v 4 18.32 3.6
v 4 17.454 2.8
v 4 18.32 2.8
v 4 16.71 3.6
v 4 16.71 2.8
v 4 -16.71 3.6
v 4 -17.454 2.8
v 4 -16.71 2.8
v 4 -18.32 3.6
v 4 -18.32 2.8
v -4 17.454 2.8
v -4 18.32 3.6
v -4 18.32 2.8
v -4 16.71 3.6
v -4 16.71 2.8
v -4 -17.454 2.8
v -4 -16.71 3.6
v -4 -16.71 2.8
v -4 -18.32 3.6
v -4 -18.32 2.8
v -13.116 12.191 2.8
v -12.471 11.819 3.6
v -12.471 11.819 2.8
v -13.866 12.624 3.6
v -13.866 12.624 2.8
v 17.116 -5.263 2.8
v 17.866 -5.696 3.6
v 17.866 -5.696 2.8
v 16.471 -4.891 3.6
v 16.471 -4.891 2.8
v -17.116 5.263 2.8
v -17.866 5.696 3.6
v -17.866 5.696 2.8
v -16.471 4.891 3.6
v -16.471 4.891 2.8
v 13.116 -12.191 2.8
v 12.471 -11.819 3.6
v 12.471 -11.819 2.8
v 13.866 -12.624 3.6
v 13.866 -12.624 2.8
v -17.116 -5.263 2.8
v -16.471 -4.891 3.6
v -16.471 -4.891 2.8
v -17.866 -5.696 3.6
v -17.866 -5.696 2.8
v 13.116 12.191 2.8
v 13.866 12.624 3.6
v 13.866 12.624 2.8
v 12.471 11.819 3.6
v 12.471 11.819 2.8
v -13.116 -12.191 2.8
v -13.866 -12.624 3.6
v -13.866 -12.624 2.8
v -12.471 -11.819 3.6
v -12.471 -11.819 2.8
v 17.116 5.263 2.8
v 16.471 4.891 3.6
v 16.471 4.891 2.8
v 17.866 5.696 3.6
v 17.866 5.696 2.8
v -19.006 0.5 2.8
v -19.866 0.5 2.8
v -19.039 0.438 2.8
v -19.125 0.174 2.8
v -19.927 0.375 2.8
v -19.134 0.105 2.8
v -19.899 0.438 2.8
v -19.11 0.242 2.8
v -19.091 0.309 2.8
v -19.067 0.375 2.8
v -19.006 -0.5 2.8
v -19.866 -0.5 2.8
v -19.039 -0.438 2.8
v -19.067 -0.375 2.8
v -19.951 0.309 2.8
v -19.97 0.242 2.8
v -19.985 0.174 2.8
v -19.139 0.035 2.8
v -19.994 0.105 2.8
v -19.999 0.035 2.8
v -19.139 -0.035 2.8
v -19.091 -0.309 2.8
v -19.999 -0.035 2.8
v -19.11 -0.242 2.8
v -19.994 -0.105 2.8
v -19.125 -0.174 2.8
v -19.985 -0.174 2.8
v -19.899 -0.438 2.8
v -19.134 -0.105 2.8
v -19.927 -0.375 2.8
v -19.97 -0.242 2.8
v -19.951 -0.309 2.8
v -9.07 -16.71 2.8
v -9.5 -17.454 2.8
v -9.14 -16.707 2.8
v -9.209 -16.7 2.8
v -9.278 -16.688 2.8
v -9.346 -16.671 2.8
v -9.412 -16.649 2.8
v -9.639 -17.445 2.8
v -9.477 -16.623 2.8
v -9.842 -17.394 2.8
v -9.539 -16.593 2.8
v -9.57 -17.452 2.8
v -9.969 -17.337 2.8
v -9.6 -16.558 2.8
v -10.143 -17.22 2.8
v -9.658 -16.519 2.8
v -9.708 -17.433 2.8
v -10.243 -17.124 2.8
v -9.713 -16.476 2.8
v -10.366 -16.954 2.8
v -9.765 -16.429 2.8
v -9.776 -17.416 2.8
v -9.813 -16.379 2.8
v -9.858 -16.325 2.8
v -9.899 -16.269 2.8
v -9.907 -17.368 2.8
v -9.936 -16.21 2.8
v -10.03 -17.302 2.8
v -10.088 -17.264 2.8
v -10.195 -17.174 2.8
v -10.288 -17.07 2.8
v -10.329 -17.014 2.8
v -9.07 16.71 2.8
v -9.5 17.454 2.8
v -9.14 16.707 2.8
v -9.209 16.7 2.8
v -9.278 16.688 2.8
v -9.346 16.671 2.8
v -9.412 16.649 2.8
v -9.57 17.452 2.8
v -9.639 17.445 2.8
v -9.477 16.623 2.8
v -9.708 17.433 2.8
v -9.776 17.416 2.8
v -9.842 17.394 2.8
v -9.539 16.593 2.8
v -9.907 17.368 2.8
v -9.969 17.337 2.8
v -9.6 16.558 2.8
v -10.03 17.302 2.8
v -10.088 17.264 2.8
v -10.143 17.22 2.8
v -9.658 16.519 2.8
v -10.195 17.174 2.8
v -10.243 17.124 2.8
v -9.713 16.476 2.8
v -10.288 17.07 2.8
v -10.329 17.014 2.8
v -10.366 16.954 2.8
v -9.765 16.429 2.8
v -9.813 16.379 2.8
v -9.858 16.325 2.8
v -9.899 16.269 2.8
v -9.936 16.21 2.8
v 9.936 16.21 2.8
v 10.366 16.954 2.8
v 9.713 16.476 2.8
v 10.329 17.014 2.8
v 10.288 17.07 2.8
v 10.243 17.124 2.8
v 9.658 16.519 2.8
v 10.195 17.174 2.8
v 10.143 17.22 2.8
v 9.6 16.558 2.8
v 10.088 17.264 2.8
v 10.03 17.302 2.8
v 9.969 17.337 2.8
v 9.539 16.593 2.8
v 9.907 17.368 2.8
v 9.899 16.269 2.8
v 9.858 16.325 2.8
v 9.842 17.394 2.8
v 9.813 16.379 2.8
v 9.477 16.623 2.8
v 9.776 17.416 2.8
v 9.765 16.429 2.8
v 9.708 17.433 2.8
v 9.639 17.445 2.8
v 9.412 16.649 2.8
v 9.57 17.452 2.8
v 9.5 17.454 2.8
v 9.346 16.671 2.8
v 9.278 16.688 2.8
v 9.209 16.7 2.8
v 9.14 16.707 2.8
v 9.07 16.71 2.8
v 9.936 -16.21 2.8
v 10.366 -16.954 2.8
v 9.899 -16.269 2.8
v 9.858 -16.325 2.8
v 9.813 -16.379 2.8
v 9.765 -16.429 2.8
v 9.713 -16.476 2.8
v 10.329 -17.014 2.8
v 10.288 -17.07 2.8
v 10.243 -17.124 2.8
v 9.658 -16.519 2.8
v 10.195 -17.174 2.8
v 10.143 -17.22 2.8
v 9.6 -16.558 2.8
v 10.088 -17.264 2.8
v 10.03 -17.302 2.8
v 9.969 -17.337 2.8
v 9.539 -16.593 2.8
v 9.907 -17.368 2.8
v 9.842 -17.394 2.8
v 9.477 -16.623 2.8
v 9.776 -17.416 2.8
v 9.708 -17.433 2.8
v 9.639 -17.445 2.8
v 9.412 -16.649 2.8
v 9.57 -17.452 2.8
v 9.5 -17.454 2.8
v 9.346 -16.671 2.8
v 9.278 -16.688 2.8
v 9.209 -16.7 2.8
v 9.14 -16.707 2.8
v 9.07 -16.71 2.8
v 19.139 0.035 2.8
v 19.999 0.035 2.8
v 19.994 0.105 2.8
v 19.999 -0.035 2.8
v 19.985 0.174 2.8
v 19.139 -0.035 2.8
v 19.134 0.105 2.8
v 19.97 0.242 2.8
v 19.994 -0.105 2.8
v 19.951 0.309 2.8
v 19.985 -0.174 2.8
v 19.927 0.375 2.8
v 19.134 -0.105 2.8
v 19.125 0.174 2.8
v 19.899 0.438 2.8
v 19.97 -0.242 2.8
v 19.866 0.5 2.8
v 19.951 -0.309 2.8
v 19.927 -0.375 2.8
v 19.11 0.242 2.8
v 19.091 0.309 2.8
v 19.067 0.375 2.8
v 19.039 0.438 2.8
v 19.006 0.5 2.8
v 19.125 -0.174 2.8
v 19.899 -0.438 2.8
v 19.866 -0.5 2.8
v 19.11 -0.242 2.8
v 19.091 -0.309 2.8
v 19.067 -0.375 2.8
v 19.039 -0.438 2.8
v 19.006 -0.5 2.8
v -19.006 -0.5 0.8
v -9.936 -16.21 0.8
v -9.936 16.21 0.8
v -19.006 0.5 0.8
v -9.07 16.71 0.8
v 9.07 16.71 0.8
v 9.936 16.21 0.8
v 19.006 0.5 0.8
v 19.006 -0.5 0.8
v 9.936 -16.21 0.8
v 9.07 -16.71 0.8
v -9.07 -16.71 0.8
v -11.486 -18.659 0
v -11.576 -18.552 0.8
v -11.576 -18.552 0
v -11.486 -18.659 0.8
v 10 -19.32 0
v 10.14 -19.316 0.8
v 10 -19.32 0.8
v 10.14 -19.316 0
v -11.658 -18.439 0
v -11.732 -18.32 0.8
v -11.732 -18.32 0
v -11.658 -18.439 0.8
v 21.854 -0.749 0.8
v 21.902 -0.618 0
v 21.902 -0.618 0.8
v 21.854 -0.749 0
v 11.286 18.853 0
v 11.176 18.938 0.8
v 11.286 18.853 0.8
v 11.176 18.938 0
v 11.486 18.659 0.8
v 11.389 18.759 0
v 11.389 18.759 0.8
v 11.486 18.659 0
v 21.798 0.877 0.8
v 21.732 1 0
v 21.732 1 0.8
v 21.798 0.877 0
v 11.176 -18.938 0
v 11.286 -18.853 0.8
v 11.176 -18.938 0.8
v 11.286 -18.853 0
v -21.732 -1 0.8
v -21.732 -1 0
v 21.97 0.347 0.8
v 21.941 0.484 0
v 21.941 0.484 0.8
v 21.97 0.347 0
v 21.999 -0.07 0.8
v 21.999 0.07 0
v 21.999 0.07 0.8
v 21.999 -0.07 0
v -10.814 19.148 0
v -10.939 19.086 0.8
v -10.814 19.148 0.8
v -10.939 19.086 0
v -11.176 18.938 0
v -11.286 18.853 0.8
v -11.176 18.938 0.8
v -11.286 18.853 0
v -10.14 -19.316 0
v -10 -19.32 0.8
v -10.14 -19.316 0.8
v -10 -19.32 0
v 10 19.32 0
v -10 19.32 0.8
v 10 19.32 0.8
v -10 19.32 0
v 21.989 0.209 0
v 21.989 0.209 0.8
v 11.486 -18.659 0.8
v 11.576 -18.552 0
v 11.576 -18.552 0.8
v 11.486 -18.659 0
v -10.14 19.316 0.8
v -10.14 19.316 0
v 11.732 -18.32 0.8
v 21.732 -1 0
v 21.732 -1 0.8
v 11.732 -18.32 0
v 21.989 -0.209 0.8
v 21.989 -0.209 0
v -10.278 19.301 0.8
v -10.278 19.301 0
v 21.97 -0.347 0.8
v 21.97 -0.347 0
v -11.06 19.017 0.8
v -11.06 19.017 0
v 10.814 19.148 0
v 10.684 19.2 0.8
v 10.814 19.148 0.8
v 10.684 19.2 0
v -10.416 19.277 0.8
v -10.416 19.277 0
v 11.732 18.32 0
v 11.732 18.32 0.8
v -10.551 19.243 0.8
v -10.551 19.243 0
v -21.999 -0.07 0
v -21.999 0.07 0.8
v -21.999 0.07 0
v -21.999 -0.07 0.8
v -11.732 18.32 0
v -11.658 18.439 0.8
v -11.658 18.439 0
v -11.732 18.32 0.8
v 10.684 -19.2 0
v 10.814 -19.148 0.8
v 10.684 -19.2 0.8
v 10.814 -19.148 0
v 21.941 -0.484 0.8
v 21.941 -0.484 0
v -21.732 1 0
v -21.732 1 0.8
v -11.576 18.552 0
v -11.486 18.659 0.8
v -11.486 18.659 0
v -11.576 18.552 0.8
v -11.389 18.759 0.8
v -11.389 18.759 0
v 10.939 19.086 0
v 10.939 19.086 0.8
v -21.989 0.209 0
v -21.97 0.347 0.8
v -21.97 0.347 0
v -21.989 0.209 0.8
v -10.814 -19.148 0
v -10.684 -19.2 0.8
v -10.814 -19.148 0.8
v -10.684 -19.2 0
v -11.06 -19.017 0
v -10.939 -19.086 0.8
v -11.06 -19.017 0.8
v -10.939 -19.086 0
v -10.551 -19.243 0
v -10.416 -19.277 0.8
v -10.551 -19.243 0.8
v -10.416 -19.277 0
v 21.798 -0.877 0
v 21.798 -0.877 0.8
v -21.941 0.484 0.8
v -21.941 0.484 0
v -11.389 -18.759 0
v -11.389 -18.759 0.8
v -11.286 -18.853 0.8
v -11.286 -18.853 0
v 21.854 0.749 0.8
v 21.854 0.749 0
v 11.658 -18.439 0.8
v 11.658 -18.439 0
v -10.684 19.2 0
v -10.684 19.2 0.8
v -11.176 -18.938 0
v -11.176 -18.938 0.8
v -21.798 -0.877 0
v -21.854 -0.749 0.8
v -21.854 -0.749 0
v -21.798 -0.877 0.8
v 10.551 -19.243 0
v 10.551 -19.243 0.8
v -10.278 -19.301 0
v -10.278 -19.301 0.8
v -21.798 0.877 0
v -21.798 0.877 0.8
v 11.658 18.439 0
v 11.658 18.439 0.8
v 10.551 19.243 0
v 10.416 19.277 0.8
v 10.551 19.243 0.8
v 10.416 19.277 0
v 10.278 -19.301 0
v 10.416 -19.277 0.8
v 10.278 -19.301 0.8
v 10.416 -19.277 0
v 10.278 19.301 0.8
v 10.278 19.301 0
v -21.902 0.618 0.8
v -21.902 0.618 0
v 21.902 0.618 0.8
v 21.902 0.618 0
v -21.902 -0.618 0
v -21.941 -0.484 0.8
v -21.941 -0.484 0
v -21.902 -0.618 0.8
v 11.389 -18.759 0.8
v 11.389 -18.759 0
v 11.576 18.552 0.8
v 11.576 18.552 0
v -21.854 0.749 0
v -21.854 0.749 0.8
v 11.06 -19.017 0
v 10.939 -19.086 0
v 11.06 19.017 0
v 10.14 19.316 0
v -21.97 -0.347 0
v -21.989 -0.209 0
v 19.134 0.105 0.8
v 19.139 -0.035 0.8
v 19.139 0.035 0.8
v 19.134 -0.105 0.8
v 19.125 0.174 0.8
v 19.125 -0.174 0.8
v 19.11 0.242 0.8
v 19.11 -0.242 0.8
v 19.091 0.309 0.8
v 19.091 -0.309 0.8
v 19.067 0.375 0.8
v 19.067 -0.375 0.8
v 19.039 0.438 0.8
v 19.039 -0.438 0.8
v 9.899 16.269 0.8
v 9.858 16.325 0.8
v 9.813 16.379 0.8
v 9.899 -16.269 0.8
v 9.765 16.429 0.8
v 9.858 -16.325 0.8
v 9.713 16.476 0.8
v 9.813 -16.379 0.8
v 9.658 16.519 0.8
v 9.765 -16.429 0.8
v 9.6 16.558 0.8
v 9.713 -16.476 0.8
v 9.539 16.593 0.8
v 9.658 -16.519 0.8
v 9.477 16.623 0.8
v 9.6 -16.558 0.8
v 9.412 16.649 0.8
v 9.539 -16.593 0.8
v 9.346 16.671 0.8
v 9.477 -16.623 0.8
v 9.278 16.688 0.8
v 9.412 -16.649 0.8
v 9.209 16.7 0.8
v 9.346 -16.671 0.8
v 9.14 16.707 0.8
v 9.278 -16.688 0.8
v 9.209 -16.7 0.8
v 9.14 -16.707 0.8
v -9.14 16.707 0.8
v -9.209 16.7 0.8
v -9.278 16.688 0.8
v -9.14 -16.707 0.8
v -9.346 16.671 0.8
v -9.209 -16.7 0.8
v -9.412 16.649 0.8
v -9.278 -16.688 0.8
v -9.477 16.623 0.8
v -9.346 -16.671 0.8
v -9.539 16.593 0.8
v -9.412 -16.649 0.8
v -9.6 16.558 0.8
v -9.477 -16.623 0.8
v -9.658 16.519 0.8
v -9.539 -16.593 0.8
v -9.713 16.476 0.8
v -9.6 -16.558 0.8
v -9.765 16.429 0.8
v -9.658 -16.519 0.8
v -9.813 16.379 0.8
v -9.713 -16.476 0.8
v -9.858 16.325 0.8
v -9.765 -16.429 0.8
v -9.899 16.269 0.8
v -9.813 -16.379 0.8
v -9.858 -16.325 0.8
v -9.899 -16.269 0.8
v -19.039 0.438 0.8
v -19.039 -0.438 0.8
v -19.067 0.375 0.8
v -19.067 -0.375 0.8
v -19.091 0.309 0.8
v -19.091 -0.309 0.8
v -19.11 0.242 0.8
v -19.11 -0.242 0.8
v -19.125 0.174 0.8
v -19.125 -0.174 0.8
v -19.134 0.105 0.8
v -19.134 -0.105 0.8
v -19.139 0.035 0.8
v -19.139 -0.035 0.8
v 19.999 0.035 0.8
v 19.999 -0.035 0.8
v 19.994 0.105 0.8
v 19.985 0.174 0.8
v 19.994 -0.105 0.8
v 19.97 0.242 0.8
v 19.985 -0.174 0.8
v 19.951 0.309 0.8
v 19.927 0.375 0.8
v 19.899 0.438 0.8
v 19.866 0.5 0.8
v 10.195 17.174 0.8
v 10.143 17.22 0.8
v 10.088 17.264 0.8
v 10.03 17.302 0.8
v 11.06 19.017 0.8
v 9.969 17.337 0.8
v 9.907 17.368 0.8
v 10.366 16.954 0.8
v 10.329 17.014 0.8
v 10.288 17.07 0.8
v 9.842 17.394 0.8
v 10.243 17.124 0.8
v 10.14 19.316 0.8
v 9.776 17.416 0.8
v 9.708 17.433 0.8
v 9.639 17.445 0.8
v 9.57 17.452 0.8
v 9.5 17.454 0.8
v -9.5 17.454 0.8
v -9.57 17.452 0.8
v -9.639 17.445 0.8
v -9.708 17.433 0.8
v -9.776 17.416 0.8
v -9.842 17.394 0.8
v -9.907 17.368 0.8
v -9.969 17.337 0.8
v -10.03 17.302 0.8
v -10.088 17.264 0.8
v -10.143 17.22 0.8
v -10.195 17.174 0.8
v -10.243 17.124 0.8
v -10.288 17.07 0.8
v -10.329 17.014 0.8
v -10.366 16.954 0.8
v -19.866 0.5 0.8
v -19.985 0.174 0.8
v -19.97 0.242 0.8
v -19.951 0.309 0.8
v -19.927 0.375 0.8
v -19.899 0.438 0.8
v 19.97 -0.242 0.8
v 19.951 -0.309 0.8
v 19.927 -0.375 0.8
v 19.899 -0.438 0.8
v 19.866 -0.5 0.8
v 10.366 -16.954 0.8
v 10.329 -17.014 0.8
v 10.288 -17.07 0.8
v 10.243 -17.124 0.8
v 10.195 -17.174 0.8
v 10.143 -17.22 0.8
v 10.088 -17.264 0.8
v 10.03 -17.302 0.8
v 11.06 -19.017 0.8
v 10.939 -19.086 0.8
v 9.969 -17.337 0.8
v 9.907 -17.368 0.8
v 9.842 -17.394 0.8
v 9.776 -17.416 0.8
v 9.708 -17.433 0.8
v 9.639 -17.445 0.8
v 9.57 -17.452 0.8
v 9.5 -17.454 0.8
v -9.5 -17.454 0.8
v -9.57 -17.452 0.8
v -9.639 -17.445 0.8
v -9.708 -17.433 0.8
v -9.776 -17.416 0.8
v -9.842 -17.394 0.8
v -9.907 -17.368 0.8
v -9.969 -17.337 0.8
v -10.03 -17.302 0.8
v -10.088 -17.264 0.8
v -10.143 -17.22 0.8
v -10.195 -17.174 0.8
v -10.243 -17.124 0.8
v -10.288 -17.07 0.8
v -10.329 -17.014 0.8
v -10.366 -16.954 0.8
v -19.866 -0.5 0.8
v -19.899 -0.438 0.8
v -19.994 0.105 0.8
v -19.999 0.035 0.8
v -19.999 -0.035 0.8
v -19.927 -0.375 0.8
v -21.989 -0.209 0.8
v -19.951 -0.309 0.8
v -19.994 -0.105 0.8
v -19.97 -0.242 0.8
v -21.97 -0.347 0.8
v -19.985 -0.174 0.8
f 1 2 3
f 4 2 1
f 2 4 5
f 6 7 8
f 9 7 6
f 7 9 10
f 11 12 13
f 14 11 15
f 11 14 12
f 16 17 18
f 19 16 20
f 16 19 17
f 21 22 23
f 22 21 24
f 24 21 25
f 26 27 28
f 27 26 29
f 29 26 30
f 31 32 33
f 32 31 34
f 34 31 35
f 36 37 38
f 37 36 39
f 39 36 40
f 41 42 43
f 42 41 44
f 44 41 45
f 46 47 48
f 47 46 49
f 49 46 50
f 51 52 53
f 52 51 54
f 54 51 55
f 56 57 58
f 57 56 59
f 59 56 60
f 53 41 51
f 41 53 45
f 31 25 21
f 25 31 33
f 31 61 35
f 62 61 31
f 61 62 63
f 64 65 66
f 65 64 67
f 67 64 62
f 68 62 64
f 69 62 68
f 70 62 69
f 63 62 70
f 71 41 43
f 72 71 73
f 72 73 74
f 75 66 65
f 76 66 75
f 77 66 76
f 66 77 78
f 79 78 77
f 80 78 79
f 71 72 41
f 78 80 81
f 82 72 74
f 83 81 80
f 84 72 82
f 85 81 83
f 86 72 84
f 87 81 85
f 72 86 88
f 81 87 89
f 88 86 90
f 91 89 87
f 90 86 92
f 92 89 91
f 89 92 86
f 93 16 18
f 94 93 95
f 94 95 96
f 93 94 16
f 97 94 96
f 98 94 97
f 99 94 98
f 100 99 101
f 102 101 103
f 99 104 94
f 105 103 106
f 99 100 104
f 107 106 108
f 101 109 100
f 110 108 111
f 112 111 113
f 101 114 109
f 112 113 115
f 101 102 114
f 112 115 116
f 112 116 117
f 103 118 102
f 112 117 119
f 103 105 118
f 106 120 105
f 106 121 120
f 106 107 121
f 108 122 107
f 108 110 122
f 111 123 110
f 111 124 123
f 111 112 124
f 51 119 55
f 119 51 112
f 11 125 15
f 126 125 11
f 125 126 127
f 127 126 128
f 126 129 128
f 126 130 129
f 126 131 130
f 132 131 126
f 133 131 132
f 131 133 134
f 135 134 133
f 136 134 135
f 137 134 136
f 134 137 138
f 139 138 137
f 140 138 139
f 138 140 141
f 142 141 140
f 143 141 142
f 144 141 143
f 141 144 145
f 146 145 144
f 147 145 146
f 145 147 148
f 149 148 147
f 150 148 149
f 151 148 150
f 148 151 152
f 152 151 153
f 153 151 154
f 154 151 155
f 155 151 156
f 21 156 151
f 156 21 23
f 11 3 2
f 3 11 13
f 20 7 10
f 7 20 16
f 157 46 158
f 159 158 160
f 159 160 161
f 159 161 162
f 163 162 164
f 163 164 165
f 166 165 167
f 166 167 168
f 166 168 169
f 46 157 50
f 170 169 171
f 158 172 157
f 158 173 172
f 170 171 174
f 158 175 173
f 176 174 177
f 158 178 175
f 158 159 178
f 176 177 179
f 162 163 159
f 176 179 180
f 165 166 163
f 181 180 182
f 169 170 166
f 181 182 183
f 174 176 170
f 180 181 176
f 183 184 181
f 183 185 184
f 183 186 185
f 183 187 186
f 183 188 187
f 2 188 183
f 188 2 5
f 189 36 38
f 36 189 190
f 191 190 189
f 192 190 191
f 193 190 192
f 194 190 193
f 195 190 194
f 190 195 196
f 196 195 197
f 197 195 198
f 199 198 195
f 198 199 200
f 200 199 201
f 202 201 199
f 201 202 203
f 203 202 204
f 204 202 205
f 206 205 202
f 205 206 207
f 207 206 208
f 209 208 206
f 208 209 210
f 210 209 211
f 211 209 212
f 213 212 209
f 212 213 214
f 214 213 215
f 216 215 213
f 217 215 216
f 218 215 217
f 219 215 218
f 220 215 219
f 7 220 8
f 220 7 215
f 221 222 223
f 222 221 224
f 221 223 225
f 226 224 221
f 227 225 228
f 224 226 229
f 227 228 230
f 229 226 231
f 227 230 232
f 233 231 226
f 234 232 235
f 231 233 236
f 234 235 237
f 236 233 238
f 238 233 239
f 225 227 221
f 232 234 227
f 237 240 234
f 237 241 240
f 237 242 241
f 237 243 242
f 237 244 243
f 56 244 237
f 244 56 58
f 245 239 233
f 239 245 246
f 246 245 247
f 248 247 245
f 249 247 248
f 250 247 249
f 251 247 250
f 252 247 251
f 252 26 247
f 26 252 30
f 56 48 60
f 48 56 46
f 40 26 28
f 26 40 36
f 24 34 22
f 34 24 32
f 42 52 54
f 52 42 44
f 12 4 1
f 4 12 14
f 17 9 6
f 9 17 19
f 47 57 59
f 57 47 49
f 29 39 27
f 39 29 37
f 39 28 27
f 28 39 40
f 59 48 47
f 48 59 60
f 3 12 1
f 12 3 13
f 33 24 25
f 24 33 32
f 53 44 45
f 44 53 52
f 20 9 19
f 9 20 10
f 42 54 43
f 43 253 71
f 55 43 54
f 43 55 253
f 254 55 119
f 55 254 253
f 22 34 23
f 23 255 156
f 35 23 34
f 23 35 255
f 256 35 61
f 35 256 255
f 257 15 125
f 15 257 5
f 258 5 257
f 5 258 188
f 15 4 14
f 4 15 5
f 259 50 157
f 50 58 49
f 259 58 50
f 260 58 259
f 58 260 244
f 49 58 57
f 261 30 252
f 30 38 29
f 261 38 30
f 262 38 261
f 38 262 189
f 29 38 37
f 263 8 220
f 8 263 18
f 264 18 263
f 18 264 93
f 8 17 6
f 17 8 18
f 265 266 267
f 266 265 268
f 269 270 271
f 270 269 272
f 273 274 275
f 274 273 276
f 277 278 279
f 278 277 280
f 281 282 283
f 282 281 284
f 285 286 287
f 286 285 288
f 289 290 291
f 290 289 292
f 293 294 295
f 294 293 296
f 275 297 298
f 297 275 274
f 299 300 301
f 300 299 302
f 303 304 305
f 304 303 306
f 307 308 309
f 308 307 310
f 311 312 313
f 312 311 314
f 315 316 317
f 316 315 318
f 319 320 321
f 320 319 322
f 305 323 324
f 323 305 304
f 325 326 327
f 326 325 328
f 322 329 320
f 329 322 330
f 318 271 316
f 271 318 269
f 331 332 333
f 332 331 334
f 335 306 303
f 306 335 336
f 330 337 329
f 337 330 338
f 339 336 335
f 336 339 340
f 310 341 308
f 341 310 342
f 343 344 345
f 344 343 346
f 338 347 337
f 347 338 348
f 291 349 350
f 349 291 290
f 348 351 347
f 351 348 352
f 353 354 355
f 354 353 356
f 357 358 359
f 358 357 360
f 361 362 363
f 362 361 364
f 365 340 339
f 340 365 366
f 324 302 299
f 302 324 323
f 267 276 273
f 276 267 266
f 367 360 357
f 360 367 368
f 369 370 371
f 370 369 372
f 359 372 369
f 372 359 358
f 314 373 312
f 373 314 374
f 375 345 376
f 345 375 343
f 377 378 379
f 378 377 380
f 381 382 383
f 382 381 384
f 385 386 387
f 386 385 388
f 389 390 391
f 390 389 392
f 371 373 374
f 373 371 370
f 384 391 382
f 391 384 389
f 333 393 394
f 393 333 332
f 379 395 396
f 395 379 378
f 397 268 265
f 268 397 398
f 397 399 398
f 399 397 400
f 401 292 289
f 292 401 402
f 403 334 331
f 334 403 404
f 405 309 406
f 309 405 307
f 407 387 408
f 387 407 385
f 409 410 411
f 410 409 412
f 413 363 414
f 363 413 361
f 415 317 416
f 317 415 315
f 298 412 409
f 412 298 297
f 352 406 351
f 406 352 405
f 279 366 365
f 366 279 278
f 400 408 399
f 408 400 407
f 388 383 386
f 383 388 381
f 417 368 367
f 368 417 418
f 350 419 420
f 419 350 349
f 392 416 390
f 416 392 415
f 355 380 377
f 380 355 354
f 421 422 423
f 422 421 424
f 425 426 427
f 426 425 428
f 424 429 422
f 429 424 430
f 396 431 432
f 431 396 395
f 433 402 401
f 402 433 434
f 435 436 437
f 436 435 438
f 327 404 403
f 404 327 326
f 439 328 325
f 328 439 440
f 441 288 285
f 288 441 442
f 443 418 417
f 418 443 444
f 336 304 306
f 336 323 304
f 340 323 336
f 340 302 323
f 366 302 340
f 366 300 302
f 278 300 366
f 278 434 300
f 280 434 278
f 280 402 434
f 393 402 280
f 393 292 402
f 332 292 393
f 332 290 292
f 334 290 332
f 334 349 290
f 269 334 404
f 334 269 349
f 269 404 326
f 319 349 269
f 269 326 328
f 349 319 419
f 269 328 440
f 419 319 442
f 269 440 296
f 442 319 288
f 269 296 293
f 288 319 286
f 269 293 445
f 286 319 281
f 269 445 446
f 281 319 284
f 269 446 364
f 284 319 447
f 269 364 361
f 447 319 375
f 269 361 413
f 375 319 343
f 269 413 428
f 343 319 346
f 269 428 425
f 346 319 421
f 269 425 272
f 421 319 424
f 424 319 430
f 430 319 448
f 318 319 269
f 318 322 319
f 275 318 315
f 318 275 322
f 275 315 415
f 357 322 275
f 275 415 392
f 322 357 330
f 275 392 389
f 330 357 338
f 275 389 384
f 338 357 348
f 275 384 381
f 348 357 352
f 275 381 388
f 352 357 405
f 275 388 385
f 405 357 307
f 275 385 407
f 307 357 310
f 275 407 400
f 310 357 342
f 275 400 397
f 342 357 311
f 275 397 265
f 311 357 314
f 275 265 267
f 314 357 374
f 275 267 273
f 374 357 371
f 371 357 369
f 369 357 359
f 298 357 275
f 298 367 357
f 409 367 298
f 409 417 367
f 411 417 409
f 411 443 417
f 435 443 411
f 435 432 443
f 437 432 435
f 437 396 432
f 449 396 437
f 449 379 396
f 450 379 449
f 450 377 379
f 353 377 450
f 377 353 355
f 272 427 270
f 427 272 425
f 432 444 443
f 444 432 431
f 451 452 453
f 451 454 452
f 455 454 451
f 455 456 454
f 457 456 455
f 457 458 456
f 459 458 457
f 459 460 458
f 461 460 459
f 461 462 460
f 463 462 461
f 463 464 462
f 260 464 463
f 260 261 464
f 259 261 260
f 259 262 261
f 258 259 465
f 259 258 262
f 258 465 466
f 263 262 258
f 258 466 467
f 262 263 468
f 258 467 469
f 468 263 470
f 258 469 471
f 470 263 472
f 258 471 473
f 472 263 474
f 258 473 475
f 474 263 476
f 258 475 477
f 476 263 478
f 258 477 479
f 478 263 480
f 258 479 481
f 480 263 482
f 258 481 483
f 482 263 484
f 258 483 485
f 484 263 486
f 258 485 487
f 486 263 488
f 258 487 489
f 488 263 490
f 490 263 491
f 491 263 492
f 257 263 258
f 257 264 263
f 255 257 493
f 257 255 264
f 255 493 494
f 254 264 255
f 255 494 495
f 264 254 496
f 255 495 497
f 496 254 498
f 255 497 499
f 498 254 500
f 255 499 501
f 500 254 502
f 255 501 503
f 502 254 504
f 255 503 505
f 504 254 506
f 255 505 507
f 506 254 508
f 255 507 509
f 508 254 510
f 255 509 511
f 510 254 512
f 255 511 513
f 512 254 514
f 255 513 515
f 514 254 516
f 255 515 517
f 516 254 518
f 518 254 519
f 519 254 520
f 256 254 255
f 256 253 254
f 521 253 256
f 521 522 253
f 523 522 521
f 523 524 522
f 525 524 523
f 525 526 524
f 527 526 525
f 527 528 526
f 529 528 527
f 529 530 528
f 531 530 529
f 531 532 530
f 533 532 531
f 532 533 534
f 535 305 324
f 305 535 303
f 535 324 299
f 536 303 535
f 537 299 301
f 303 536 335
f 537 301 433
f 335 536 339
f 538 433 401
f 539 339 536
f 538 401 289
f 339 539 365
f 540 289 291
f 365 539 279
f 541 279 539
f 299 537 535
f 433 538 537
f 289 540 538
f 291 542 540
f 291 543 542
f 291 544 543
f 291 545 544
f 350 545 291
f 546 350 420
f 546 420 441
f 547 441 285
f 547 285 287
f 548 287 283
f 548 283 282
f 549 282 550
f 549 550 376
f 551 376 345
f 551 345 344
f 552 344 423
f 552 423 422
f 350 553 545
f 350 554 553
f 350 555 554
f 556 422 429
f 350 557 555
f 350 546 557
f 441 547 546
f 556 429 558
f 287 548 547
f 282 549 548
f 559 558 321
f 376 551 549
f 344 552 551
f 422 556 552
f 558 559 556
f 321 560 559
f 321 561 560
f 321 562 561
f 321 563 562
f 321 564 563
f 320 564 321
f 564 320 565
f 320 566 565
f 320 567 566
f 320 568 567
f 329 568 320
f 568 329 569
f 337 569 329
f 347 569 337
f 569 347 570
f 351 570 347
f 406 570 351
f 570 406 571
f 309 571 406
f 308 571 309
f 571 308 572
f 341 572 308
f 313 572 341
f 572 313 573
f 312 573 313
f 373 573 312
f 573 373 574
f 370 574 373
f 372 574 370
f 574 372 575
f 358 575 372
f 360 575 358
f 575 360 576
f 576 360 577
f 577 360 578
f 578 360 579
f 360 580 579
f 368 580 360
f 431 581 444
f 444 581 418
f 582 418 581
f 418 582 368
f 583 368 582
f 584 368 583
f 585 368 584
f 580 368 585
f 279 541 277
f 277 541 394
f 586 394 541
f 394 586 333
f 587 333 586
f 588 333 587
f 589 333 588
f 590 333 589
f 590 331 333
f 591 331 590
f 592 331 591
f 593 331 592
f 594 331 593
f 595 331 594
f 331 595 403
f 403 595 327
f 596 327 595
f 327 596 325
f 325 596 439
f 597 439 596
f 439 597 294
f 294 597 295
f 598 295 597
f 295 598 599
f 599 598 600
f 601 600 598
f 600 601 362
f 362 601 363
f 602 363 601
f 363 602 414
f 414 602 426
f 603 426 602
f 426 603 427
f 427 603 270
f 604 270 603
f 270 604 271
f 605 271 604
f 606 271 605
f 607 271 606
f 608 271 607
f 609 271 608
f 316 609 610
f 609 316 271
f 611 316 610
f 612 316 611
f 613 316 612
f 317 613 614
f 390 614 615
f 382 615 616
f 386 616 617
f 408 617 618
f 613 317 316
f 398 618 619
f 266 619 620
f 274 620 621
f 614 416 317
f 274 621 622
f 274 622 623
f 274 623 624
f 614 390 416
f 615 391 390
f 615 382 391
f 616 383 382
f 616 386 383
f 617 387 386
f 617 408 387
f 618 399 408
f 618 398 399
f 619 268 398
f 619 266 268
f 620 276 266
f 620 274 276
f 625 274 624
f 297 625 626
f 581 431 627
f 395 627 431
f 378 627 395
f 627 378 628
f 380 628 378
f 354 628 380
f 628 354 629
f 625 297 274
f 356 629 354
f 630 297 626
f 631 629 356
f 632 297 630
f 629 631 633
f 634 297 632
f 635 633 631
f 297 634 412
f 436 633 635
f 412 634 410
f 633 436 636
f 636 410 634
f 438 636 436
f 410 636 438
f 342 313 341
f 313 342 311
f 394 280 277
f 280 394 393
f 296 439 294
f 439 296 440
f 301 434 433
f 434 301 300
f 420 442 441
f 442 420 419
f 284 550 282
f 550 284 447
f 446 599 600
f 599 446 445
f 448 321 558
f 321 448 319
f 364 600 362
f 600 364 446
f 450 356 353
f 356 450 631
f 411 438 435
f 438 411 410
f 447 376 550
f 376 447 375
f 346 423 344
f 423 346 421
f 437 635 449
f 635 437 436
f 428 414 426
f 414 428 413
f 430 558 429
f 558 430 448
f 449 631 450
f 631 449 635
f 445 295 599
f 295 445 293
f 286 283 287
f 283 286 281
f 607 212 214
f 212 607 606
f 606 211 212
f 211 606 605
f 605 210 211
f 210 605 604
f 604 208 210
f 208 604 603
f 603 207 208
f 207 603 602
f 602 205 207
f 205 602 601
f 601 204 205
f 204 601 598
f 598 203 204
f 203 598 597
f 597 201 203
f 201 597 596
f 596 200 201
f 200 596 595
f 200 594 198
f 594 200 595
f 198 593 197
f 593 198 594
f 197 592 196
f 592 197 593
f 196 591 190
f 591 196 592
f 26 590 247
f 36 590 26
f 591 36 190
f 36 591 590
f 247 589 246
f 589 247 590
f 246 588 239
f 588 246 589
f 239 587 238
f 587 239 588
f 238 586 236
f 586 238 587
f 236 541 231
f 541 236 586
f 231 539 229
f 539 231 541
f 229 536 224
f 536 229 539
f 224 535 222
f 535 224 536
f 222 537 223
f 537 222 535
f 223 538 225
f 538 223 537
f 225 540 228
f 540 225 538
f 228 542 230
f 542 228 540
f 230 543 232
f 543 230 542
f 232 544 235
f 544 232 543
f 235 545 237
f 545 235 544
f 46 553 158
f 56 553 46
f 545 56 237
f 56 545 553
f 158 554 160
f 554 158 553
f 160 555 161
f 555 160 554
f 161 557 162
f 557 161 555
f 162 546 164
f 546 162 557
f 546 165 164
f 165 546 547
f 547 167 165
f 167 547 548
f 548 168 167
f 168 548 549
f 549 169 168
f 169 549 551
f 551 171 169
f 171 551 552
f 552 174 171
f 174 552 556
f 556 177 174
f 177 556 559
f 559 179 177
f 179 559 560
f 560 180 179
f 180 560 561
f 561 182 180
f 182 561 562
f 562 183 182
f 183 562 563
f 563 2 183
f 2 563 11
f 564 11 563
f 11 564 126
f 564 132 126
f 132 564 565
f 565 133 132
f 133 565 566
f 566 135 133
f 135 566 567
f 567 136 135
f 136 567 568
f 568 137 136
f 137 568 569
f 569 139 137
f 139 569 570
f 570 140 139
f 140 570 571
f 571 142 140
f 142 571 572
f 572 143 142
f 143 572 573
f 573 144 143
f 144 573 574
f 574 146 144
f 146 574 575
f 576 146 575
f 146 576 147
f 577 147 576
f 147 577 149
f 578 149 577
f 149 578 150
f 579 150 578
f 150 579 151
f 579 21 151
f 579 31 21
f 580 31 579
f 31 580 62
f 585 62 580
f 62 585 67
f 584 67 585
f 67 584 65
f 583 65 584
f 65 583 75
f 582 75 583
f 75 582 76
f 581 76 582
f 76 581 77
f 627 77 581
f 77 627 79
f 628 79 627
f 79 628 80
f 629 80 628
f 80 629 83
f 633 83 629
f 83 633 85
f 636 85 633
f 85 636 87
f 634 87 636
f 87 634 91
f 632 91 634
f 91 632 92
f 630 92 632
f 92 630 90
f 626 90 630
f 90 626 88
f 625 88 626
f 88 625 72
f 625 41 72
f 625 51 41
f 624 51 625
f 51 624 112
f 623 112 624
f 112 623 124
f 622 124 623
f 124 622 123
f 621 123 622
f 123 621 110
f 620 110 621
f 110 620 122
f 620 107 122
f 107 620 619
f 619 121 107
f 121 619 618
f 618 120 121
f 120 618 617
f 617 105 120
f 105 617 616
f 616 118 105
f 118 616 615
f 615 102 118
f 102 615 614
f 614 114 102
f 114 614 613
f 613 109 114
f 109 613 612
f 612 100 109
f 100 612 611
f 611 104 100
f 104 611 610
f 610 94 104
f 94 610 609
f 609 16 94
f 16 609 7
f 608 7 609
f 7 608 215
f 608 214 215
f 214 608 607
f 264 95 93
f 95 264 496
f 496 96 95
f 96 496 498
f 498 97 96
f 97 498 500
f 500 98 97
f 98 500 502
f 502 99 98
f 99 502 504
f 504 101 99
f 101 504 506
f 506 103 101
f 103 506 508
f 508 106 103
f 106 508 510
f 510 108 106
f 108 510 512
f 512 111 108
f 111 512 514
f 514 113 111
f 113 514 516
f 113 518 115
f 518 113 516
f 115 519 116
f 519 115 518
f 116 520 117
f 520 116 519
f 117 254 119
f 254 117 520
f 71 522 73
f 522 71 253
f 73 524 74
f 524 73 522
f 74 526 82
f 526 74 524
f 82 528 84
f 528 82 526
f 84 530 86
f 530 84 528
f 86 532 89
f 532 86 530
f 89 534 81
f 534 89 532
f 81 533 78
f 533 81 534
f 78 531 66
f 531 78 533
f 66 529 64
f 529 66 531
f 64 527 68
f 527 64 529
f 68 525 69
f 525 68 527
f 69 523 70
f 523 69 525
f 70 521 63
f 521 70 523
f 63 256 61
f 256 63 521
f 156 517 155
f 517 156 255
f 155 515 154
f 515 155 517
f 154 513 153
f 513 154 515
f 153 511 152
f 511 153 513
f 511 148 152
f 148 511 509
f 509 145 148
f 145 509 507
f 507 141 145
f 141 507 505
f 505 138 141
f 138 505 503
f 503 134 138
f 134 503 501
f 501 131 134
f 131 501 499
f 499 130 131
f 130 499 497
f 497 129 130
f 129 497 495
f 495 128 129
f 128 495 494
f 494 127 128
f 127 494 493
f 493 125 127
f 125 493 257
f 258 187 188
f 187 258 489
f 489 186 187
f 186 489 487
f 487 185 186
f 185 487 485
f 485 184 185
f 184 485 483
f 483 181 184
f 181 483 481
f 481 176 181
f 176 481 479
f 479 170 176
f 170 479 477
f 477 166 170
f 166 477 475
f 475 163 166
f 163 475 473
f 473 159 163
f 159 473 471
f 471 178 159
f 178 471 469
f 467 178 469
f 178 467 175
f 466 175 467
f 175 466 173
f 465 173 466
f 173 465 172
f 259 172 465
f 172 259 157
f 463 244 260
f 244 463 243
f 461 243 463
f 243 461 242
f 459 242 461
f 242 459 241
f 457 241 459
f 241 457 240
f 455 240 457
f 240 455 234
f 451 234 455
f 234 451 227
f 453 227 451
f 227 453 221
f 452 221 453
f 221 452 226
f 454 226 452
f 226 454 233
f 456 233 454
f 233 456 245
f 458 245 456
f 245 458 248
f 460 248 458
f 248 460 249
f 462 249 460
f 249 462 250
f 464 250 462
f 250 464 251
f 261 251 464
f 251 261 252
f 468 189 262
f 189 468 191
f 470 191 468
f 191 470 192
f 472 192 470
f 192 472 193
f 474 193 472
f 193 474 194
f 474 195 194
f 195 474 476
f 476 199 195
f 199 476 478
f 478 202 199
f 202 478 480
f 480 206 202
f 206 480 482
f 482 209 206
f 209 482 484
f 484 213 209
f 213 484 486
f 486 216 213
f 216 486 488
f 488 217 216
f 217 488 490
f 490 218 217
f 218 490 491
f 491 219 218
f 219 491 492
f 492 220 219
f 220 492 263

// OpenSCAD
/*
 * Prusament Box Hole Plug/Cap (parametric)
 *
 * Author: Pavel Rampas
 * Version: 1.0.0 (Changelog is at the bottom)
 * License: CC BY-SA 4.0 [https://creativecommons.org/licenses/by-sa/4.0/]
 * Link: https://github.com/pavelrampas/openscad-models
 *
 * OpenSCAD version: 2019.05
 *
 * Instructions:
 * Set up parameters, render and print.
 *
 * Height is layer.
 * Thickness is perimeter.
 */

// Parameters
//------------------------------------------------------------------------------

$fn = $preview ? 15 : 90;

render = "body"; // "body" or "text" (for multi-material prints)

baseHeight = 0.8;
wallThickness = 0.86; // ideal for 0.4 nozzle
teethHeight = 0.8;
teethThickness = wallThickness + 1;

text = ""; // text or keep empty
textSize = 20;
textFont = "Liberation Mono";
textRotate = false;

// Code
//------------------------------------------------------------------------------

if (render == "body") {
    _base();
    _wall();
    _teeth();
} else {
    _text(textRotate);
}

// Functions
//------------------------------------------------------------------------------


// Modules
//------------------------------------------------------------------------------

// base
module _base() {
    difference() {
        linear_extrude(height = baseHeight) {
            offset(r = 2) {
                circle(20, $fn=6);
            }
        }
        // text
        if (text) {
            _text(textRotate);
        }
    }
}

// text
module _text(rotate = false) {
    rotate([0, 0, (rotate ? 30 : 0)]) {
        linear_extrude(height = 0.2) {
            mirror([1,0,0]) {
                text(
                    text,
                    size=textSize,
                    font=textFont,
                    valign="center",
                    halign="center",
                    $fn=30
                );
            }
        }
    }
}

// wall
module _wall() {
    translate([0, 0, baseHeight]) {
        linear_extrude(height = 2) {
            difference() {
                offset(r = 1) {
                    circle(19, $fn=6);
                }
                offset(r = 1) {
                    circle(19 - wallThickness, $fn=6);
                }
            }
        }
    }
}

// teeth
module _teeth() {
    difference() {
        translate([0, 0, baseHeight + 2]) {
            linear_extrude(height = teethHeight) {
                difference() {
                    offset(r = 1) {
                        circle((19 - wallThickness) + teethThickness, $fn=6);
                    }
                    offset(r = 1) {
                        circle(19 - wallThickness, $fn=6);
                    }
                }
            }
        }

        for(i = [0 : 5]) {
            rotate([0, 0, 60 * i]) {
                translate([4, 0, baseHeight]) {
                    cube([8, 20 + wallThickness, teethHeight + 3], false);
                }
                translate([-12, 0, baseHeight]) {
                    cube([8, 20 + wallThickness, teethHeight + 3], false);
                }
            }
        }
    }
}

// Changelog
//------------------------------------------------------------------------------

// [1.0.0]:
// Initial release.
